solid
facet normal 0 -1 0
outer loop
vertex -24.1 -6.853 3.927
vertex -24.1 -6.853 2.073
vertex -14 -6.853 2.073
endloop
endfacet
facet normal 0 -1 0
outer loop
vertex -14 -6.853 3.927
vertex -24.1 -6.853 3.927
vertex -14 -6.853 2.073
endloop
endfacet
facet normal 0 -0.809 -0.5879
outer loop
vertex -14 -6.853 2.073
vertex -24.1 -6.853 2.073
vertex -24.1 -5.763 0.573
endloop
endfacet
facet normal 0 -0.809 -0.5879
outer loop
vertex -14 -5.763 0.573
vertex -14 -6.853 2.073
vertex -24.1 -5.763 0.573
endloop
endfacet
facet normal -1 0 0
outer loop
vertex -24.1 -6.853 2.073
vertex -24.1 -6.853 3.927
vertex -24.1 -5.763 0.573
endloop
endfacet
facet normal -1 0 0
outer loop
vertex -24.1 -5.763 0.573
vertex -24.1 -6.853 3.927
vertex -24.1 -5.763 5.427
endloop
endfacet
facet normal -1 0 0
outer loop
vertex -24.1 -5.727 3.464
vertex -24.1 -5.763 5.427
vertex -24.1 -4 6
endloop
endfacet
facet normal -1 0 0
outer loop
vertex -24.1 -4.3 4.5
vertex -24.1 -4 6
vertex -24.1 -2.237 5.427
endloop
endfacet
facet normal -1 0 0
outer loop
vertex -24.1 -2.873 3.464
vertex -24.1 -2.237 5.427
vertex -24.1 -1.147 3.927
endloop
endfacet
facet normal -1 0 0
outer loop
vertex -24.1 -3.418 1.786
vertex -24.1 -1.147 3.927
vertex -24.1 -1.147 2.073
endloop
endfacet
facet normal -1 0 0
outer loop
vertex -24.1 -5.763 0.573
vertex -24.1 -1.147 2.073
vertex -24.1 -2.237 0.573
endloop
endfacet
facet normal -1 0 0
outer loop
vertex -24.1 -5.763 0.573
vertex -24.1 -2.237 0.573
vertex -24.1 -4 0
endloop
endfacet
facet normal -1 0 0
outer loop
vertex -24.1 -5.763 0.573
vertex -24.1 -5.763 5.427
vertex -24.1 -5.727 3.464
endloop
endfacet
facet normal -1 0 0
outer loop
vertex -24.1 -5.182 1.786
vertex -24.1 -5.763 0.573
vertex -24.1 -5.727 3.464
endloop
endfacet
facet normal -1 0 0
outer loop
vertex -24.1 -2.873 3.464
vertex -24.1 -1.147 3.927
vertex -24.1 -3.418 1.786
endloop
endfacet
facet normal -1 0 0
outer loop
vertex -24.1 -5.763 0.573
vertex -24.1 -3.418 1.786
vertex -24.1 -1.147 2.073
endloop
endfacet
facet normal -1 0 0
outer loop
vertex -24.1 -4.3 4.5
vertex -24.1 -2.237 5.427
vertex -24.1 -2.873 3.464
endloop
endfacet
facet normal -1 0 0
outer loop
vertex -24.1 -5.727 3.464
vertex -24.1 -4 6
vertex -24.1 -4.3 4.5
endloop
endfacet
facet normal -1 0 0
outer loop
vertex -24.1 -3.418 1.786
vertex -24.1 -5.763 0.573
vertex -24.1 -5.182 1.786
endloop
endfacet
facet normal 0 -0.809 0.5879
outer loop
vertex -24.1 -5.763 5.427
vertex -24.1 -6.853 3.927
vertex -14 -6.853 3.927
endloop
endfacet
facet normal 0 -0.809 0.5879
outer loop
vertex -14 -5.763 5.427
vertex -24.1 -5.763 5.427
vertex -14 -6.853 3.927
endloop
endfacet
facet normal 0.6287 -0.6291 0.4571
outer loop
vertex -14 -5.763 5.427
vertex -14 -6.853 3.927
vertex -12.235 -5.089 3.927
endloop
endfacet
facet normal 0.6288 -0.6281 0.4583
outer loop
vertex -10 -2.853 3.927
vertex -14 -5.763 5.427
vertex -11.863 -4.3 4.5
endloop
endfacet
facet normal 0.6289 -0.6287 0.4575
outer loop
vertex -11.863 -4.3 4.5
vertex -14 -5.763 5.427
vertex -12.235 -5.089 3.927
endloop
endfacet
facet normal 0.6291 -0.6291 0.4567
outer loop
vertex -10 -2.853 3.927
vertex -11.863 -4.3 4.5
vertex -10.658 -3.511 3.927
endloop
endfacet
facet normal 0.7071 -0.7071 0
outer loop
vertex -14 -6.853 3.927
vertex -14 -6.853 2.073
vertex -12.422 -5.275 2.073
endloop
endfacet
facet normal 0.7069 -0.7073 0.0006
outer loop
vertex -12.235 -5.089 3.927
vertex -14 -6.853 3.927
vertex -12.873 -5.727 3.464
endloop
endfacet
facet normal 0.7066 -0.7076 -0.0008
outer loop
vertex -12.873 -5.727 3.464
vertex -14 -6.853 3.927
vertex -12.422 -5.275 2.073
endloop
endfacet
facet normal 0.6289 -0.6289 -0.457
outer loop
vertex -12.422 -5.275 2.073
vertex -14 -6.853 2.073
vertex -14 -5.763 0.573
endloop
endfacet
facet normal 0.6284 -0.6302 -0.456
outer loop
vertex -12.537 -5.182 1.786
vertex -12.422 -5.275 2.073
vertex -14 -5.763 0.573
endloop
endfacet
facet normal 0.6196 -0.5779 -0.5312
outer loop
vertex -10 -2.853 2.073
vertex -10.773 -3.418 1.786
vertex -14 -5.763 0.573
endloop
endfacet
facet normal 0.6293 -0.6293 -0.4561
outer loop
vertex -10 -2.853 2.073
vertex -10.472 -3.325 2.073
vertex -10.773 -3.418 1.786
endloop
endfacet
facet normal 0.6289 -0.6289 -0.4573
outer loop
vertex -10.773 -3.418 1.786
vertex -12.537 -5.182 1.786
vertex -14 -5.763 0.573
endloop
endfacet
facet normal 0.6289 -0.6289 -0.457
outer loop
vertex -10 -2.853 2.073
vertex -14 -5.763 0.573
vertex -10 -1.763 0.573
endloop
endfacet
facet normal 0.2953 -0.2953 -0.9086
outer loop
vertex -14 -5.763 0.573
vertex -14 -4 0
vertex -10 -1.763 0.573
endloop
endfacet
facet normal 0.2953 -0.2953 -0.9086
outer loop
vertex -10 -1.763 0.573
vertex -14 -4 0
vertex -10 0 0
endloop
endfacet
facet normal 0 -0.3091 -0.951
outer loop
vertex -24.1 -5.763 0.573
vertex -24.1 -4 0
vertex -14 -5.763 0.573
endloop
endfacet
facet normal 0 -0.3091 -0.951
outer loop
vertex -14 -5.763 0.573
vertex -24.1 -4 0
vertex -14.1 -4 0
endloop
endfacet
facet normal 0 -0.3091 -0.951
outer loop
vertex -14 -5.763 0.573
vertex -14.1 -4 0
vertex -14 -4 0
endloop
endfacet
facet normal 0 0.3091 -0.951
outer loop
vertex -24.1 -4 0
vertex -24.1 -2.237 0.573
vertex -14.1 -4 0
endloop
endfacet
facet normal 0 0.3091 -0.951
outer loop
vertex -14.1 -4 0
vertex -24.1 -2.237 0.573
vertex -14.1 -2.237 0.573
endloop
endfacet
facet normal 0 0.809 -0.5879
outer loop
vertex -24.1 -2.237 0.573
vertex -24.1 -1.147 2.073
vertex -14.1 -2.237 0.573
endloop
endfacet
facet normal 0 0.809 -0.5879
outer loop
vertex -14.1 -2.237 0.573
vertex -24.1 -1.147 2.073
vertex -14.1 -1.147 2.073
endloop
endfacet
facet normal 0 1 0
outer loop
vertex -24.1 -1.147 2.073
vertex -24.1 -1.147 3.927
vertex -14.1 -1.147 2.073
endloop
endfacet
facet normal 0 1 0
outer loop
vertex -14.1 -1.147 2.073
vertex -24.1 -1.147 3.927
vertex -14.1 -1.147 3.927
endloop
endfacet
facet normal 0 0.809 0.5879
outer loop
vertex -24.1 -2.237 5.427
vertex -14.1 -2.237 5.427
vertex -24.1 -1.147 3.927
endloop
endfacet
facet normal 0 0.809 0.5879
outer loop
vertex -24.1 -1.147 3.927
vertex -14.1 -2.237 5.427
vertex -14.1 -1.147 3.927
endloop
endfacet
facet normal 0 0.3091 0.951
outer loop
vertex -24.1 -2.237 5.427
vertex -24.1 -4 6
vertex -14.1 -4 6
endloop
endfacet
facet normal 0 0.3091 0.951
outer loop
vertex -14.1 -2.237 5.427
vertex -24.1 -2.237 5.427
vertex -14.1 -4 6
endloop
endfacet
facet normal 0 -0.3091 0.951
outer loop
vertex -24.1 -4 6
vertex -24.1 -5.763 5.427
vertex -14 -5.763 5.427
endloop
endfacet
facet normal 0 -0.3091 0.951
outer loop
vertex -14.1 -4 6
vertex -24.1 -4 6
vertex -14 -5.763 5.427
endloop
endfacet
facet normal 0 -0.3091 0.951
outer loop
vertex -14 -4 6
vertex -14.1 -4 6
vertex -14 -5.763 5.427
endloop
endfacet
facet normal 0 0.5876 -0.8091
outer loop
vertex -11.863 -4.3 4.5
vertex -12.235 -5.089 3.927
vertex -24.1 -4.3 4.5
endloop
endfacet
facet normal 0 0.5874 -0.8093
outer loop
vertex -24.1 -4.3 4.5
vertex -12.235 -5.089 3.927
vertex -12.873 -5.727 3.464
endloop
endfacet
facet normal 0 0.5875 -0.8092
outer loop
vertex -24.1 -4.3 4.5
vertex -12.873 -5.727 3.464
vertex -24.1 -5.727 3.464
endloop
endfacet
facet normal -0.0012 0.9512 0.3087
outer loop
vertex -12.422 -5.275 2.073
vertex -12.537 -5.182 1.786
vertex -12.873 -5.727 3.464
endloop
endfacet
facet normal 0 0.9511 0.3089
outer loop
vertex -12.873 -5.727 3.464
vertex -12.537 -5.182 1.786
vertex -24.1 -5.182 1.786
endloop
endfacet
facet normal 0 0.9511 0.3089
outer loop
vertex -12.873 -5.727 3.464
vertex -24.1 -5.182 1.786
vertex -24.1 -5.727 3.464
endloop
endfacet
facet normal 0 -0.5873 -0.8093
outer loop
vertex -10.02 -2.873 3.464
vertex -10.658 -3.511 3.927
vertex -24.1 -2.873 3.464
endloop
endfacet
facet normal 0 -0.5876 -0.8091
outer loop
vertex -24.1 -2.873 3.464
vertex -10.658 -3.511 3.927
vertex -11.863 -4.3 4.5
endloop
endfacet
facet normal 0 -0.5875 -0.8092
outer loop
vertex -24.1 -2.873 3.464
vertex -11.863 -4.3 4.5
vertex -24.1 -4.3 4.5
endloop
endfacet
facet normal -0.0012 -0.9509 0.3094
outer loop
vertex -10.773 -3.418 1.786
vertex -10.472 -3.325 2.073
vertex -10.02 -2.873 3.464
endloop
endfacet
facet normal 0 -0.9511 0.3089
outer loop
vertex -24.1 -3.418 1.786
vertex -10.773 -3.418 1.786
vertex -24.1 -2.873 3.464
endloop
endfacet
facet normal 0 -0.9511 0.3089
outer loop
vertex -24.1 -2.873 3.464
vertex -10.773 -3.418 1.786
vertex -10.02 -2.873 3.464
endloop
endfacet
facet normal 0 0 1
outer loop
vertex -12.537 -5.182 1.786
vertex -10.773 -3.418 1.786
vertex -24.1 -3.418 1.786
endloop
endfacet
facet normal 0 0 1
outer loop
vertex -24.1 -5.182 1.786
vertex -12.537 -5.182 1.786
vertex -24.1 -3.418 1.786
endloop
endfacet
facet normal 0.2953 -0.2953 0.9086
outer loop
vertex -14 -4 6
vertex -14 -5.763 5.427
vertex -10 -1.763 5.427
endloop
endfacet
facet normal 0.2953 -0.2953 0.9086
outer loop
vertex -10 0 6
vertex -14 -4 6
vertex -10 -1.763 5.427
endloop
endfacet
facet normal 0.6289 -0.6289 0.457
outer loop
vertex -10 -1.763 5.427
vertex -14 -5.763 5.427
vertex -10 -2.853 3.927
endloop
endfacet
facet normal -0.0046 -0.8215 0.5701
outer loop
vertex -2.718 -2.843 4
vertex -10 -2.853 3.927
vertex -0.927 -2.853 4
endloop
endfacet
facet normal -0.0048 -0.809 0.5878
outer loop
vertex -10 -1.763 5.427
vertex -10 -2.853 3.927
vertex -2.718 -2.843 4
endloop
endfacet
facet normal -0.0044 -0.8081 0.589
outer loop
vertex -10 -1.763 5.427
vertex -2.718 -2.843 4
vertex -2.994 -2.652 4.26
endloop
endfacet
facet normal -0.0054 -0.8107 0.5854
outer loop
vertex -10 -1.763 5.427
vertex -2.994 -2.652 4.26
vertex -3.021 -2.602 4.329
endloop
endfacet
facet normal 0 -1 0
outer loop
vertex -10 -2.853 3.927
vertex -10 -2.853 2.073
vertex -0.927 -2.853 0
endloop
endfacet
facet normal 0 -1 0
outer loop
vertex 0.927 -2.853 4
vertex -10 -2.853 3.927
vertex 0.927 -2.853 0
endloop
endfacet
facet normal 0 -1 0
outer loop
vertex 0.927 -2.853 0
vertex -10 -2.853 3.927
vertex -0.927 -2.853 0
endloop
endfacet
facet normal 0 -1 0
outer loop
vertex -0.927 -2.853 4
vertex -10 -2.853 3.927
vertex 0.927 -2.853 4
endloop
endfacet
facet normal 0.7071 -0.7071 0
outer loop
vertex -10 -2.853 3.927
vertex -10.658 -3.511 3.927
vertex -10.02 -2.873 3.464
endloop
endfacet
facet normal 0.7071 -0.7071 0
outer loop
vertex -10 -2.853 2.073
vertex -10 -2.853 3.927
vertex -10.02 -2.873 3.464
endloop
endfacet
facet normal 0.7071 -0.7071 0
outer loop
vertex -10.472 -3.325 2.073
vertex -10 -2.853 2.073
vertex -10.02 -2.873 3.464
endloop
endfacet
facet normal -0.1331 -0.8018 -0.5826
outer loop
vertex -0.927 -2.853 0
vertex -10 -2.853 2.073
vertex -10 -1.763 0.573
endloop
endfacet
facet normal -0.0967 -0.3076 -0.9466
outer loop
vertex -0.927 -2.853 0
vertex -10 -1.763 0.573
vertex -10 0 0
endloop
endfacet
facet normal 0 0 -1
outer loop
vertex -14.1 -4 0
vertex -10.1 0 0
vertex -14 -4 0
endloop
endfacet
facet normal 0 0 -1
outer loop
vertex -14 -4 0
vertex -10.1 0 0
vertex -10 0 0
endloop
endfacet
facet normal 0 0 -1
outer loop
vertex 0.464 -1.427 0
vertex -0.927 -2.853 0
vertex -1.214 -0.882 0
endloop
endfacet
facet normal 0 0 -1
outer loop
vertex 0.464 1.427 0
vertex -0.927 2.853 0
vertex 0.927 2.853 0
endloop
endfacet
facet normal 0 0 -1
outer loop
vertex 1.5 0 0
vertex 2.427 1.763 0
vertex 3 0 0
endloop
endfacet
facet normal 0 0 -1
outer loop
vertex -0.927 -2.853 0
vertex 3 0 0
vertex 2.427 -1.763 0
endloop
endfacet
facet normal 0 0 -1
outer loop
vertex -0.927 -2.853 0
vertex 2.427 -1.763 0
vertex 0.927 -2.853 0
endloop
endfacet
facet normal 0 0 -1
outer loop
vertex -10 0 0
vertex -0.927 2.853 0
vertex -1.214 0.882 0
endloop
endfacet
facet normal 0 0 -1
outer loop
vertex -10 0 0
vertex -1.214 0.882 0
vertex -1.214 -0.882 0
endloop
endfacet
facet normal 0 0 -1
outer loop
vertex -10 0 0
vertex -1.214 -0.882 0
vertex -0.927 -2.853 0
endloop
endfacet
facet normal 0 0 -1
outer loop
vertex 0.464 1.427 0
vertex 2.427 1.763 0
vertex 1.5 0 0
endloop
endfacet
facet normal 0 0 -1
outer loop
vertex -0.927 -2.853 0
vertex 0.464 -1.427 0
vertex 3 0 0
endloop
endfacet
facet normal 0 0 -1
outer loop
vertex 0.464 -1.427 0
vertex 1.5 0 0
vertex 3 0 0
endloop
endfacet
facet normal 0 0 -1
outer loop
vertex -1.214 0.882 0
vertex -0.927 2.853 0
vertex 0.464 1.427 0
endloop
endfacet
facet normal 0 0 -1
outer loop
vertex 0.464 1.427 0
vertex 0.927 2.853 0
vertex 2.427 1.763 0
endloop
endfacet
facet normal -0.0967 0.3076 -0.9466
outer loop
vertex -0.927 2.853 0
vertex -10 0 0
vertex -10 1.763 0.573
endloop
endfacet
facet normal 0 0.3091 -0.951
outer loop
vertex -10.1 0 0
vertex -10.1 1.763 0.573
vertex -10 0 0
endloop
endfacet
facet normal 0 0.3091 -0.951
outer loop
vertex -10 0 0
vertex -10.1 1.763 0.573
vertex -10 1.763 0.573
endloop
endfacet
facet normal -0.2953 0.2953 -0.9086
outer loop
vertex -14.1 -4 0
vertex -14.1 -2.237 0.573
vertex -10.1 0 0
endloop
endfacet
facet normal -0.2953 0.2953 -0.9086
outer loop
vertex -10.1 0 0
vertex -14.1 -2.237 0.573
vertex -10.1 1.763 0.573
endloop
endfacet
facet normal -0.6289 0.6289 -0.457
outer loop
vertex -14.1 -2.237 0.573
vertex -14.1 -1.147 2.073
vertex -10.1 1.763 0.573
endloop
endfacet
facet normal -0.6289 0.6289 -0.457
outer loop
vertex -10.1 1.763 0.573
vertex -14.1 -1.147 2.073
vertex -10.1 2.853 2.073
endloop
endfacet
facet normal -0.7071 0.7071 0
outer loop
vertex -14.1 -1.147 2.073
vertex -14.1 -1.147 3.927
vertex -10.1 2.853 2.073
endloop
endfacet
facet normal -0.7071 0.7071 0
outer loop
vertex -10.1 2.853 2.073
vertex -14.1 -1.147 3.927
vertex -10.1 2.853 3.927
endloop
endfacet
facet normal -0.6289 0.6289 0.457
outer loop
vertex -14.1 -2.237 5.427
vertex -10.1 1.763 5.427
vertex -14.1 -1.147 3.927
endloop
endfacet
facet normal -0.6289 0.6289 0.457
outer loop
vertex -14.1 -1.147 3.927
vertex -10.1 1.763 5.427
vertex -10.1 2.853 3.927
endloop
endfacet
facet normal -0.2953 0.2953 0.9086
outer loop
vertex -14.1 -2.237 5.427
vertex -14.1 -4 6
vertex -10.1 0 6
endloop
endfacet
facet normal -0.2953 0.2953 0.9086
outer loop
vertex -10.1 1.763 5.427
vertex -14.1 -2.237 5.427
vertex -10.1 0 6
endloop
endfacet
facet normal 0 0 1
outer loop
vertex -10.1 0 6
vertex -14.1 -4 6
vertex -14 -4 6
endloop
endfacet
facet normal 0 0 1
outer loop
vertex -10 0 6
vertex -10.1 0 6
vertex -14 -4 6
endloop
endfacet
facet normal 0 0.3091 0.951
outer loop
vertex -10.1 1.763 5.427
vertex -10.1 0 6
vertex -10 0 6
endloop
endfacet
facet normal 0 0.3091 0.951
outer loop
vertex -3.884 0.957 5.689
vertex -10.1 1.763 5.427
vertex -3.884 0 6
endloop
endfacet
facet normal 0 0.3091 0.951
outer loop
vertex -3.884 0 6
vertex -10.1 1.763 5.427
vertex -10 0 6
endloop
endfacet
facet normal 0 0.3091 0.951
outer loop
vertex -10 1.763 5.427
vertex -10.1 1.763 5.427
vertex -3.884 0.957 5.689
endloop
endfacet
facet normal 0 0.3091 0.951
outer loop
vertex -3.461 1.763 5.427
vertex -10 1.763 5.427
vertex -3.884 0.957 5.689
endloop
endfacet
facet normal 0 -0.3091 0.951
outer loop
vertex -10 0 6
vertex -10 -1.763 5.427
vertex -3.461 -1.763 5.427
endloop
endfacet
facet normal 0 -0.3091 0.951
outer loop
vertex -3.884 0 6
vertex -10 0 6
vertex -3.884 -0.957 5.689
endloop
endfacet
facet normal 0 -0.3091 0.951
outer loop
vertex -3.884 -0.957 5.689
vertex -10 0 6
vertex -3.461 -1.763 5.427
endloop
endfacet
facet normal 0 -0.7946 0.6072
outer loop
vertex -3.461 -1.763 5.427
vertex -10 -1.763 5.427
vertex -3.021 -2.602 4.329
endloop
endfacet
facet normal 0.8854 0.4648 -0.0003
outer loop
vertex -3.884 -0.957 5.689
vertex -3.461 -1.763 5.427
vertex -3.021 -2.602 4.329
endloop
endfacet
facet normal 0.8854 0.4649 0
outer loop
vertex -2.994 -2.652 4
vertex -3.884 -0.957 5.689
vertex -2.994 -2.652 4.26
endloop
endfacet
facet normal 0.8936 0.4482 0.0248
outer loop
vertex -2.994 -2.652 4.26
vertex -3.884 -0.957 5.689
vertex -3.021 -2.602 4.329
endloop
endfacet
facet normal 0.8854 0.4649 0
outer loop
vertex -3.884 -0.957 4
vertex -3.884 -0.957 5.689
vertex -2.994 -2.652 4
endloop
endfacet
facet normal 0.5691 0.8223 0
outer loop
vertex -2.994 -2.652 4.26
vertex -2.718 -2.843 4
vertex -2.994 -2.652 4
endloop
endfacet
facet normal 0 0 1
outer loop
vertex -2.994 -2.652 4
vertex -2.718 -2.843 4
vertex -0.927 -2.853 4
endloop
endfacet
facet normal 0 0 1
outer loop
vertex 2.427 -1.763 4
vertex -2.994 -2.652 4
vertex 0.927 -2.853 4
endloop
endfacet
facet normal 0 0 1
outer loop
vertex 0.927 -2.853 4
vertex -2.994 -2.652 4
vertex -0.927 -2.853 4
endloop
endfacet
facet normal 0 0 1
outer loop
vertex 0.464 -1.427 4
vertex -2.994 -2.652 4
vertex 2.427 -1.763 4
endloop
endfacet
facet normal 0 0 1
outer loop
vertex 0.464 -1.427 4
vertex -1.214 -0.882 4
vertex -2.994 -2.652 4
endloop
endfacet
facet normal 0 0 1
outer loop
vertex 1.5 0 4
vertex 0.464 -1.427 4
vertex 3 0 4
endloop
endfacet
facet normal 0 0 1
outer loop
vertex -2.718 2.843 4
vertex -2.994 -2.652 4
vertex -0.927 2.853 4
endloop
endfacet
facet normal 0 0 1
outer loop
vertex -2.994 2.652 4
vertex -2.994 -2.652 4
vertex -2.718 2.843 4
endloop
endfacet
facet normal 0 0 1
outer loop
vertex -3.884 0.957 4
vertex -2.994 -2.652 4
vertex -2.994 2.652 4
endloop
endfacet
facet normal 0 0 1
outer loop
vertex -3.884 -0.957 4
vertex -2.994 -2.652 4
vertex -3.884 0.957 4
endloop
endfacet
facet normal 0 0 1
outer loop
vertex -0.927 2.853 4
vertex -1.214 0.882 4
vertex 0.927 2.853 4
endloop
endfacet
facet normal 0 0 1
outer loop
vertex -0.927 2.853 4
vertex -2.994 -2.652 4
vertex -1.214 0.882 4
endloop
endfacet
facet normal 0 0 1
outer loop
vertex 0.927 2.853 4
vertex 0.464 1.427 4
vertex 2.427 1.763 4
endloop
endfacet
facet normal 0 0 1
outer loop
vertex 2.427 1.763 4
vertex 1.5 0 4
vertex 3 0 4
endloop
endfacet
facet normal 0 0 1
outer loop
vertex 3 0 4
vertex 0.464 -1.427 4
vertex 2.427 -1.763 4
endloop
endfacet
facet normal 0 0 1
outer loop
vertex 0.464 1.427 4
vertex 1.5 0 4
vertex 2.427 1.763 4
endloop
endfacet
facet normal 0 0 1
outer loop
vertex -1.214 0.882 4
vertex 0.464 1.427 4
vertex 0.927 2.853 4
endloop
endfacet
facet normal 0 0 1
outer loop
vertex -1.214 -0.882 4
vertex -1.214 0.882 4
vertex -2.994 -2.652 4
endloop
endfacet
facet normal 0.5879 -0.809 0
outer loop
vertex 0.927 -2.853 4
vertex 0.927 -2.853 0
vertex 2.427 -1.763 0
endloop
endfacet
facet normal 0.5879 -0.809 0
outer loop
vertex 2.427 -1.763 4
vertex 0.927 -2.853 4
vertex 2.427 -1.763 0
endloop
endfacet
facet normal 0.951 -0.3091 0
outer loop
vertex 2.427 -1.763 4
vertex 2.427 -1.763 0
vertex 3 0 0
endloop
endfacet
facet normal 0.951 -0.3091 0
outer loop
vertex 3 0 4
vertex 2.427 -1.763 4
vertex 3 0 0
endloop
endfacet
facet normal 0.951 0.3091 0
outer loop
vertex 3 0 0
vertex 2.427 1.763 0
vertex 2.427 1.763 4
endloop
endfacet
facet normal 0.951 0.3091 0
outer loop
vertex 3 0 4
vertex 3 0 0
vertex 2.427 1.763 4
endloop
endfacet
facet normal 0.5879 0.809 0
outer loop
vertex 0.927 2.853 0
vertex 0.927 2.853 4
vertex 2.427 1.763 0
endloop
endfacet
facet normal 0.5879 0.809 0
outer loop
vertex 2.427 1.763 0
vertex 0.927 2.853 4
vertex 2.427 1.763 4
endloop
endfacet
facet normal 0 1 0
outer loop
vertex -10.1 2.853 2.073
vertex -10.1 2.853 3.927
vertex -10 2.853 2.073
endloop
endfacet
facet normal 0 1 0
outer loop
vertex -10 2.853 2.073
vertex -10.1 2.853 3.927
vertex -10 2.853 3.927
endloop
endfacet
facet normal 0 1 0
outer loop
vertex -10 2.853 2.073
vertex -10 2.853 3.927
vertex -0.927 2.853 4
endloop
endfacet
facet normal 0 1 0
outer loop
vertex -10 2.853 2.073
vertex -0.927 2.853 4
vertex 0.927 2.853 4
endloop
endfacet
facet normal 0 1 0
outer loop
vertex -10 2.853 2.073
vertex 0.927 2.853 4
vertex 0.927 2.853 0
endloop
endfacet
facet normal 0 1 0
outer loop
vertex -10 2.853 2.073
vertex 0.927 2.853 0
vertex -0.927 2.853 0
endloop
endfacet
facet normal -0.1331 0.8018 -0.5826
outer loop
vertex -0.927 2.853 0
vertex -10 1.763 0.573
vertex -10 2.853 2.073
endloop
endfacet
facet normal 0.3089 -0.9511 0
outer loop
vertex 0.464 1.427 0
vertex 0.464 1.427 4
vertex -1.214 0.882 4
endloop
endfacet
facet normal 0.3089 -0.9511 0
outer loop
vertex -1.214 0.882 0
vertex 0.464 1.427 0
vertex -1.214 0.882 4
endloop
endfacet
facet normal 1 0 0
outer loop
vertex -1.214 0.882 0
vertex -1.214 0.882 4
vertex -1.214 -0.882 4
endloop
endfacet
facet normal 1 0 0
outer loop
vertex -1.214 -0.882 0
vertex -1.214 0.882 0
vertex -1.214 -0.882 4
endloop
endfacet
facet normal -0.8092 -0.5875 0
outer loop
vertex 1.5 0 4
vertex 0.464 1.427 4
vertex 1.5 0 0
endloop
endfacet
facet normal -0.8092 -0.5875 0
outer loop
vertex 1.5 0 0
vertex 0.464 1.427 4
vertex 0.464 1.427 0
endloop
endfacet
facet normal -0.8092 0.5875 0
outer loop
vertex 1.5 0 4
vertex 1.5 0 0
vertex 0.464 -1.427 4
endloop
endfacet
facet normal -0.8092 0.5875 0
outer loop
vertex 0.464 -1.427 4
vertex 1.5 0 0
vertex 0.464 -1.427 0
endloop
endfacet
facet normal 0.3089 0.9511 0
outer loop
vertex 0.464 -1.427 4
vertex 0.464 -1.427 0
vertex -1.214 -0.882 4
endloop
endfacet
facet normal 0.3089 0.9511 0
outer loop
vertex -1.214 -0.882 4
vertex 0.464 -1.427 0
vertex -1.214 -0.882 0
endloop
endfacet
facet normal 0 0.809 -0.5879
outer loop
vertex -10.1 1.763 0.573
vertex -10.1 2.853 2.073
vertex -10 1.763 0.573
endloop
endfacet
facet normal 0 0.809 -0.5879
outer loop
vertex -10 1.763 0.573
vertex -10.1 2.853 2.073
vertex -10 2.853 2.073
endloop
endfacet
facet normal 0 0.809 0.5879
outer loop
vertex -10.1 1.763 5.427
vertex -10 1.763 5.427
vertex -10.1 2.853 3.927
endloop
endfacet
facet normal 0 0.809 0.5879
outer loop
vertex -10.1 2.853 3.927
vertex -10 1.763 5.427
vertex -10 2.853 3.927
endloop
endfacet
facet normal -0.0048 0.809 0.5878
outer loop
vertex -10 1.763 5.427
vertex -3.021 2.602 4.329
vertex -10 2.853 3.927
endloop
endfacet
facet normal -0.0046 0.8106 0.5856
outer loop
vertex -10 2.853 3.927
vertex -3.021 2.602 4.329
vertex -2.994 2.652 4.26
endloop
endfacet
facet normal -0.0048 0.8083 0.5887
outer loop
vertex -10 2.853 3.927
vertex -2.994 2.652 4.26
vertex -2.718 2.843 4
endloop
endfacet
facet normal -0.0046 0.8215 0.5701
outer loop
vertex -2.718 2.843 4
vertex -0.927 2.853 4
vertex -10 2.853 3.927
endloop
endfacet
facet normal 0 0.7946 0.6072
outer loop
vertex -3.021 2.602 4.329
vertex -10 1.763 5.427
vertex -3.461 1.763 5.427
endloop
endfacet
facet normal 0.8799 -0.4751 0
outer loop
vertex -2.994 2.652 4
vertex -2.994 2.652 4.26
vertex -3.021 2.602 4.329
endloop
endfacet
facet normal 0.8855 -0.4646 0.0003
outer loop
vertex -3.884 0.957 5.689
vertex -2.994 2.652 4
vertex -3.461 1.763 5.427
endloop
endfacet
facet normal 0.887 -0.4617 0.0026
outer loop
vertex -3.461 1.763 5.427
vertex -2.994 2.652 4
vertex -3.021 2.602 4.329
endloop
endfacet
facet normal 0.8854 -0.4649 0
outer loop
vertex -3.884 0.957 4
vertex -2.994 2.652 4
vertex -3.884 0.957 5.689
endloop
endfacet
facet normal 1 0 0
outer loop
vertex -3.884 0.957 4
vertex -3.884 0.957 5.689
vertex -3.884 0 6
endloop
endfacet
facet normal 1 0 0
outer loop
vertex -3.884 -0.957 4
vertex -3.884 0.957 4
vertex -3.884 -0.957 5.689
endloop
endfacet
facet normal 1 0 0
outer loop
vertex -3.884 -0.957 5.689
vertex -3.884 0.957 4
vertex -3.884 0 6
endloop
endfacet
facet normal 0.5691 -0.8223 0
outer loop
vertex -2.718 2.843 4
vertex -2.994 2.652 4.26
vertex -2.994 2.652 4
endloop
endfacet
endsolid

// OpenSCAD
difference(){
union(){
hull(){
translate([-10-4,-4,6/2])rotate([0,-90,0])cylinder(r=6/2,h=0.1);
translate([-10,0,6/2])rotate([0,-90,0])cylinder(r=6/2,h=0.1);
}
hull(){
translate([-10-4,-4,6/2])rotate([0,-90,0])cylinder(r=6/2,h=0.1);
translate([-10-4-10,-4,6/2])rotate([0,-90,0])cylinder(r=6/2,h=0.1);
}
hull(){
cylinder(r=6/2,h=4);
translate([0,0,6/2])rotate([0,-90,0])cylinder(r=6/2,h=10);
}
}

translate([0,0,4])cylinder(r=8/2,h=10);
translate([0,0,-1])cylinder(r=3/2,h=10);
translate([-2,-4.3,6/2])rotate([0,-90,0])cylinder(r=3/2,h=30);
}
